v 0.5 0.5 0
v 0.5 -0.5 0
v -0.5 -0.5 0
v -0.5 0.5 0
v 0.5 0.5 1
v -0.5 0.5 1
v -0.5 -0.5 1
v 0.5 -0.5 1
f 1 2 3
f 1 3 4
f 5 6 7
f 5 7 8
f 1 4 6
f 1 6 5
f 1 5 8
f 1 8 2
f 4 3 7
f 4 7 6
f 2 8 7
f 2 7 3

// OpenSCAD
module myCube (x) {
    scale ([x, x, x]) {
	polyhedron (
	    points = [
		// bottom points, clockwise
		[0.5, 0.5, 0],
		[-0.5, 0.5, 0],
		[-0.5, -0.5, 0],
		[0.5, -0.5, 0],
		// top points, clockwise
		[0.5, 0.5, 1],
		[0.5, -0.5, 1],
		[-0.5, -0.5, 1],
		[-0.5, 0.5, 1]
	    ],
	    faces = [
		[0, 1, 2, 3],
		[4, 5, 6, 7],
		[0, 4, 7, 1],
		[0, 3, 5, 4],
		[1, 7, 6, 2],
		[3, 2, 6, 5]
	    ]);
    }
}

myCube(1);
